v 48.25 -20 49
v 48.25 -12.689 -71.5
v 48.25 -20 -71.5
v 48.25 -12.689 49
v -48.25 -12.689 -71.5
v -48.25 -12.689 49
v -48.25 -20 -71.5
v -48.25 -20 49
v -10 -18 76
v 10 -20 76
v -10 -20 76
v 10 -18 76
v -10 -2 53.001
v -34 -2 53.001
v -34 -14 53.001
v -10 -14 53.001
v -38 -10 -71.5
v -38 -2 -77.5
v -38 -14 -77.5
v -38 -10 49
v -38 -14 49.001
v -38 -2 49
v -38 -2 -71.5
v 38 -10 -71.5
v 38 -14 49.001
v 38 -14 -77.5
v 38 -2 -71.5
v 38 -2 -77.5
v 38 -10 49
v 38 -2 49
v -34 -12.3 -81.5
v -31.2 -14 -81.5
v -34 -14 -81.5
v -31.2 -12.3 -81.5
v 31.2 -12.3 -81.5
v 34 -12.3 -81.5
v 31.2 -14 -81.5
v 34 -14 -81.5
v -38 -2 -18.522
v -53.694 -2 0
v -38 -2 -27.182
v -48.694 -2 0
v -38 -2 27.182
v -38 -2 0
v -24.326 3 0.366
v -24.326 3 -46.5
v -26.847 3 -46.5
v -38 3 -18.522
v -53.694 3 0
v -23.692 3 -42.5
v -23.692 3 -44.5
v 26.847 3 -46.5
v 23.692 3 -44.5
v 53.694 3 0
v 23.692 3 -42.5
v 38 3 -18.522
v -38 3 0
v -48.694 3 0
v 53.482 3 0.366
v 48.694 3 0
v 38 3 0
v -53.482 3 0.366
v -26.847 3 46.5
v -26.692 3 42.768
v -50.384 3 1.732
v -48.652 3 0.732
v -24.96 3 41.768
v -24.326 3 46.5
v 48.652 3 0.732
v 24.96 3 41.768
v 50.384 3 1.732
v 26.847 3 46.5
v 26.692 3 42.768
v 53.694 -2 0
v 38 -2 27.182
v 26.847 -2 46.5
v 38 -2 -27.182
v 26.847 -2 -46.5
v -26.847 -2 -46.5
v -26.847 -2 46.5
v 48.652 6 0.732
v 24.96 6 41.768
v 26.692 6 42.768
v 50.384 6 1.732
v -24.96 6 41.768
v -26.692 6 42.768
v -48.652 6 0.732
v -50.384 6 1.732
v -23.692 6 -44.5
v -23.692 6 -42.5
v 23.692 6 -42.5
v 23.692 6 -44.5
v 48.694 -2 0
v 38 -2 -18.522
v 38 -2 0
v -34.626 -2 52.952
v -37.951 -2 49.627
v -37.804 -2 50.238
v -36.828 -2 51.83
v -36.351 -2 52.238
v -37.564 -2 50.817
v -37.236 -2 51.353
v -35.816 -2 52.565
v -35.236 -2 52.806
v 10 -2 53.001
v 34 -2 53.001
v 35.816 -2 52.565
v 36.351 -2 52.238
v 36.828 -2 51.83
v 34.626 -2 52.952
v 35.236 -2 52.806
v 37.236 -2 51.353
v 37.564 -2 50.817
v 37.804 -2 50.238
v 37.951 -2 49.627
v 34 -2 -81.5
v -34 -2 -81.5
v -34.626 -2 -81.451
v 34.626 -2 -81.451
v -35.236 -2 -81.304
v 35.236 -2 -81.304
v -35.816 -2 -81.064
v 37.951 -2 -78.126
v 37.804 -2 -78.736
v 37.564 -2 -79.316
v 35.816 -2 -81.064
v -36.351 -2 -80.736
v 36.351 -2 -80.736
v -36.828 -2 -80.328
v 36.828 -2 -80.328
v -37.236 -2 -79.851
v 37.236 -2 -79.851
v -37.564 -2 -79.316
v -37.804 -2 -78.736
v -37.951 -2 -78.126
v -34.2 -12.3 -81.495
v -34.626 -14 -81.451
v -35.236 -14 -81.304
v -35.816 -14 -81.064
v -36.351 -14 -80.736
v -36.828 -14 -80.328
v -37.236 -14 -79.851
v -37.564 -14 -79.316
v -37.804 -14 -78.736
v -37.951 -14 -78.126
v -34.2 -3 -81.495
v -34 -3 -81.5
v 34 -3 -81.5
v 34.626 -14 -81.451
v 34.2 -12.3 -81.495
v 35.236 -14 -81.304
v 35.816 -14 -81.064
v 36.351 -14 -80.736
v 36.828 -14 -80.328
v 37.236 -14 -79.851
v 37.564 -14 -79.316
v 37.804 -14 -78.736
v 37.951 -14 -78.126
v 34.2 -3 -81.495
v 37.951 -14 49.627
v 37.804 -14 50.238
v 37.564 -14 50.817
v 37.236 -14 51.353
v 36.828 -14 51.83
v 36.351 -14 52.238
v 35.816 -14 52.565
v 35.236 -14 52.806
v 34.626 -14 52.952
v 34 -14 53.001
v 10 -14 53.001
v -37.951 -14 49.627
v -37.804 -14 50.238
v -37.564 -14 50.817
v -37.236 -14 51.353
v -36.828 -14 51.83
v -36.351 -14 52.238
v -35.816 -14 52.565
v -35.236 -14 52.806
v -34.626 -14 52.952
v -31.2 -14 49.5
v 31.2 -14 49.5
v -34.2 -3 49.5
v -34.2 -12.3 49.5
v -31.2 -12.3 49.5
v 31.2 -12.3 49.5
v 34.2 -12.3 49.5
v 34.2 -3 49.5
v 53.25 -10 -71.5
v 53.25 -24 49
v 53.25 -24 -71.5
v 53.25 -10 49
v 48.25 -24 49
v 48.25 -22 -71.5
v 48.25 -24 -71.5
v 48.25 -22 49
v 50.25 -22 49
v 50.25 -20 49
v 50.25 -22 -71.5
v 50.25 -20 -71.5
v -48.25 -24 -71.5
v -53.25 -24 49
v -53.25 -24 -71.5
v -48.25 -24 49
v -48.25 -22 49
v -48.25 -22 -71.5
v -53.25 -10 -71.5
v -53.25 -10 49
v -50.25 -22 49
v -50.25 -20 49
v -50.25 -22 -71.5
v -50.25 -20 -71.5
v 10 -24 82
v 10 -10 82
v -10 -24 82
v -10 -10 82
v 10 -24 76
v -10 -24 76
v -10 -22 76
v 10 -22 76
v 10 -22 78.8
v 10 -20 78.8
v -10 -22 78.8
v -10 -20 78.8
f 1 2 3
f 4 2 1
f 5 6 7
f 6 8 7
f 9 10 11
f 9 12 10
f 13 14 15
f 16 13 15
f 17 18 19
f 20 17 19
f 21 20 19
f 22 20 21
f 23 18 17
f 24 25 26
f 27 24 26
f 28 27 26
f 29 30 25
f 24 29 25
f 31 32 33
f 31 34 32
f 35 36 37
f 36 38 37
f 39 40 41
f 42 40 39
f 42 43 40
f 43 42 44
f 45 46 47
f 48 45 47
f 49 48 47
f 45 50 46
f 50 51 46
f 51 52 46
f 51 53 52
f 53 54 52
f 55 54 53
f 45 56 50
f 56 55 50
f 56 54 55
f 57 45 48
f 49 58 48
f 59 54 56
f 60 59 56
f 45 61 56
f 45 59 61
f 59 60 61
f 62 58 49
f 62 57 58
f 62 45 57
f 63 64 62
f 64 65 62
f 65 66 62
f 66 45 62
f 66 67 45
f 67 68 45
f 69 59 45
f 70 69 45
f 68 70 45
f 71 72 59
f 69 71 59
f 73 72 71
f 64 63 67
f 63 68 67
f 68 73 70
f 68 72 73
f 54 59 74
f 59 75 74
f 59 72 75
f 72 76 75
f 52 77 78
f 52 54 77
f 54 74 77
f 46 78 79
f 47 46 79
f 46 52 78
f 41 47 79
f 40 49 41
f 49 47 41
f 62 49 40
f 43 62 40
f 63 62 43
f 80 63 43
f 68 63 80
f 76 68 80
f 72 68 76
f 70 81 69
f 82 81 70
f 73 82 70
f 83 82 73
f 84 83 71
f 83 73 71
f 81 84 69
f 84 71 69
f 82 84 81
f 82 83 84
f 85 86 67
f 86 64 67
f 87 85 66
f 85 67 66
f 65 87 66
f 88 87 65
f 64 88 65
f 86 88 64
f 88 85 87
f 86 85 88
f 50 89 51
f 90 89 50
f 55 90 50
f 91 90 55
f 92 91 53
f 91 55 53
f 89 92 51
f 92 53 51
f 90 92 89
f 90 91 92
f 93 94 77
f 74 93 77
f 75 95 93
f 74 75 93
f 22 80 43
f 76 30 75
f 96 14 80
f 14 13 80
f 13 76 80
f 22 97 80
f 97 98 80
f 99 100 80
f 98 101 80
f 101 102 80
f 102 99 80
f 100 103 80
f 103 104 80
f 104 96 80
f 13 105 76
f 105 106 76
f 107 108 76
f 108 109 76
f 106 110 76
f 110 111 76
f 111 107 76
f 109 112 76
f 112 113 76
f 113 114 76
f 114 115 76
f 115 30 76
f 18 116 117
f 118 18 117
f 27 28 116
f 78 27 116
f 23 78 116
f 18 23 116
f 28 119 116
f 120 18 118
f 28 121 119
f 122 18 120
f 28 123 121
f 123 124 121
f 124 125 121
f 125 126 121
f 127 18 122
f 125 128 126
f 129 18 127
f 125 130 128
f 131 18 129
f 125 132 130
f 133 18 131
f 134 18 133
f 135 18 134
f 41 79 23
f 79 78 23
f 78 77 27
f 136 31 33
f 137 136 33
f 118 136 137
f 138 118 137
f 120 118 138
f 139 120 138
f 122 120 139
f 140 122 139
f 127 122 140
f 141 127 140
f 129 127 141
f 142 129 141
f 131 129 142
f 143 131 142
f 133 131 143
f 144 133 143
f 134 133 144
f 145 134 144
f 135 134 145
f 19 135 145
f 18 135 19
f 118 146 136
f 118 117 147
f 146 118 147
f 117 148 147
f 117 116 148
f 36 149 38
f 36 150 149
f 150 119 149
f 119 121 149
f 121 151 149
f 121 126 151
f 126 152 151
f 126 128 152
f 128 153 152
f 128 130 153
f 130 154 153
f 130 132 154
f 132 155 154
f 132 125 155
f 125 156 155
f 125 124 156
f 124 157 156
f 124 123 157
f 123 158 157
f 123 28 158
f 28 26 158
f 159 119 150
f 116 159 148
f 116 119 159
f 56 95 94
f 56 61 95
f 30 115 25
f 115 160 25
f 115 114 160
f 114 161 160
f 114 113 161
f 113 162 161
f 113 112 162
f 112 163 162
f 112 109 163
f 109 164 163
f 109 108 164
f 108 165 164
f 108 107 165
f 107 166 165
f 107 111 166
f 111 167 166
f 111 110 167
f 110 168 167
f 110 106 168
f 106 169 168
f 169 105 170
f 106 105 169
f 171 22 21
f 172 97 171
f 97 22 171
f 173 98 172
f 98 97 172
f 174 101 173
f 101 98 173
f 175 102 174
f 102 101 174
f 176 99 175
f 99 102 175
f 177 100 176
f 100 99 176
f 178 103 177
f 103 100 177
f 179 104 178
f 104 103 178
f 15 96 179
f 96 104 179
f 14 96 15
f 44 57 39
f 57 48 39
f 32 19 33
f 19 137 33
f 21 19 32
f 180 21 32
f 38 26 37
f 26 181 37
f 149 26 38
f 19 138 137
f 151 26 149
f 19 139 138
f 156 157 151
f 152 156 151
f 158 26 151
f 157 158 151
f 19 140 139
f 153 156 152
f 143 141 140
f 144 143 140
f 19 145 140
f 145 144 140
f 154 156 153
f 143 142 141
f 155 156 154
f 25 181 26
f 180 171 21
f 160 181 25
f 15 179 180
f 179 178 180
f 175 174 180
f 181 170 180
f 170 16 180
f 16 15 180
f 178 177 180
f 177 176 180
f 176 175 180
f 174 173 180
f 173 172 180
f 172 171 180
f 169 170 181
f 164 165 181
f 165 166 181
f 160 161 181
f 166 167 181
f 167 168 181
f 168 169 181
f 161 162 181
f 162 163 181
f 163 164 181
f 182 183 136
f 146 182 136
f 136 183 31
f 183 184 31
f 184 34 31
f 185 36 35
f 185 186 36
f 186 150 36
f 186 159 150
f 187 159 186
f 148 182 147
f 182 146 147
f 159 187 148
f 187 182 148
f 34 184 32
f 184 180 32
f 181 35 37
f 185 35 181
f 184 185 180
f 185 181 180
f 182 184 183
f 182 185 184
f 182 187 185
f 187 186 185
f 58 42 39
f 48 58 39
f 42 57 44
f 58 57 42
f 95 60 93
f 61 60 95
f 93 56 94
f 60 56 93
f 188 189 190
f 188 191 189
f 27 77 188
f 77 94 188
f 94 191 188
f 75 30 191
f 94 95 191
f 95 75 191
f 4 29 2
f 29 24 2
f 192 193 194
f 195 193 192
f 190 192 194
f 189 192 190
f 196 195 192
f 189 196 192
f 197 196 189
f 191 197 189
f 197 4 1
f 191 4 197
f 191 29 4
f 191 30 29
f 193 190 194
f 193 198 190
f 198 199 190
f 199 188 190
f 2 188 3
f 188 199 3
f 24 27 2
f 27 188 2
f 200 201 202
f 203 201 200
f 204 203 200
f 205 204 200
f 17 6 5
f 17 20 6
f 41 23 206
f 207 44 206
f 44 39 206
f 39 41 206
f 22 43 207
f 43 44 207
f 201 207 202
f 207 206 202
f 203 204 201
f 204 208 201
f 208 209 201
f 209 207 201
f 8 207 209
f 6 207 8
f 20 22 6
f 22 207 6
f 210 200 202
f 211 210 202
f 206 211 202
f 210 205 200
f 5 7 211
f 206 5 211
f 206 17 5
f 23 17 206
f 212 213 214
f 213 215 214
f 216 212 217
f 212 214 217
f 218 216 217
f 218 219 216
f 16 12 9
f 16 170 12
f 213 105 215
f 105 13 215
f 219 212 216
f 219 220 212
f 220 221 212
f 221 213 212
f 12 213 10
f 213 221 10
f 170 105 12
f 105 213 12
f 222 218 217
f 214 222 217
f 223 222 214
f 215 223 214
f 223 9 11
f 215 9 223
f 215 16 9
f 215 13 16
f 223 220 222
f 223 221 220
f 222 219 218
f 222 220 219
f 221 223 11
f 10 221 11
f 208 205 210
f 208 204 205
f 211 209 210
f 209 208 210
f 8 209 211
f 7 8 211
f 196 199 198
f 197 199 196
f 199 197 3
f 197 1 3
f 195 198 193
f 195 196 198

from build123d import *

# Parameters (mm, degrees)
RESSALTO_EXTRUS_O1_DEPTH  = 3
ESBO_O2_W                 = 47.384173958
ESBO_O2_H                 = 2
RESSALTO_EXTRUS_O2_DEPTH  = 3
RESSALTO_EXTRUS_O3_DEPTH  = 2
RESSALTO_EXTRUS_O5_DEPTH  = 12
CORTE_EXTRUS_O1_DEPTH     = 131
CORTE_EXTRUS_O3_DEPTH     = 10
RESSALTO_EXTRUS_O13_DEPTH = 120.5
RESSALTO_EXTRUS_O14_DEPTH = 10
ESBO_O20_W                = 100.5
ESBO_O20_H                = 2
CORTE_EXTRUS_O6_DEPTH     = 150.3


with BuildPart() as part:
    # Esboço1 → Ressalto-extrusão1 (new body)
    with BuildSketch(Plane(origin=(0, 0, 0), x_dir=(1, 0, 0), z_dir=(0, 1, 0))):
        Polygon((53.693575035, 0), (26.846787517, 46.5), (-26.846787517, 46.5), (-53.693575035, 0), (-26.846787517, -46.5), (26.846787517, -46.5), align=None)
    extrude(amount=RESSALTO_EXTRUS_O1_DEPTH)

    # Esboço2 → Ressalto-extrusão2 (add)
    with BuildSketch(Plane(origin=(0, 3, 0), x_dir=(1, 0, 0), z_dir=(0, 1, 0))):
        with Locations((0, 43.5)):
            Rectangle(ESBO_O2_W, ESBO_O2_H)
        Polygon((-50.384173958, -1.732050808), (-26.692086979, -42.767949192), (-24.960036171, -41.767949192), (-48.65212315, -0.732050808), align=None)
        Polygon((26.692086979, -42.767949192), (50.384173958, -1.732050808), (48.65212315, -0.732050808), (24.960036171, -41.767949192), align=None)
    extrude(amount=RESSALTO_EXTRUS_O2_DEPTH)

    # Esboço3 → Ressalto-extrusão3 (add)
    with BuildSketch(Plane.XZ):
        Polygon((26.846787517, 46.5), (-26.846787517, 46.5), (-53.693575035, 0), (-26.846787517, -46.5), (26.846787517, -46.5), (53.693575035, 0), align=None)
    extrude(amount=RESSALTO_EXTRUS_O3_DEPTH)

    # Esboço5 → Ressalto-extrusão5 (add)
    with BuildSketch(Plane.XZ.offset(2)):
        with BuildLine():
            Line((38, 49.00146682), (38, -77.5))
            ThreePointArc((38, -77.5), (36.828427125, -80.328427125), (34, -81.5))
            Line((34, -81.5), (-34, -81.5))
            ThreePointArc((-34, -81.5), (-36.828427125, -80.328427125), (-38, -77.5))
            Line((-38, -77.5), (-38, 49.00146682))
            ThreePointArc((-38, 49.00146682), (-36.828427125, 51.829893945), (-34, 53.00146682))
            Line((-34, 53.00146682), (34, 53.00146682))
            ThreePointArc((34, 53.00146682), (36.828427125, 51.829893945), (38, 49.00146682))
        make_face()
    extrude(amount=RESSALTO_EXTRUS_O5_DEPTH)

    # Esboço7 → Corte-extrusão1 (cut)
    with BuildSketch(Plane(origin=(0, 0, -81.5), x_dir=(-1, 0, 0), z_dir=(0, 0, -1))):
        Polygon((-34.2, -3), (34.2, -3), (34.2, -12.3), (31.2, -12.3), (31.2, -23.281359025), (-31.2, -26.250413902), (-31.2, -12.3), (-34.2, -12.3), align=None)
    extrude(amount=-CORTE_EXTRUS_O1_DEPTH, mode=Mode.SUBTRACT)

    # Esboço8 → Corte-extrusão3 (cut)
    with BuildSketch(Plane.XZ.offset(2)):
        Polygon((-48.693575035, 0), (-38, 0), (-38, -18.521815275), align=None)
        Polygon((38, 0), (48.693575035, 0), (38, -18.521815275), align=None)
    extrude(amount=-CORTE_EXTRUS_O3_DEPTH, mode=Mode.SUBTRACT)

    # Esboço17 → Ressalto-extrusão13 (add)
    with BuildSketch(Plane(origin=(0, 0, -71.5), x_dir=(-1, 0, 0), z_dir=(0, 0, -1))):
        Polygon((-53.25, -20), (-53.25, -18), (-53.25, -10), (-38, -2), (-38, -6), (-38, -10), (-48.25, -12.68852459), (-48.25, -18), (-48.25, -20), (-48.25, -22), (-48.25, -24), (-53.25, -24), (-53.25, -22), align=None)
        Polygon((53.25, -20), (53.25, -18), (53.25, -10), (38, -2), (38, -6), (38, -10), (48.25, -12.68852459), (48.25, -18), (48.25, -20), (48.25, -22), (48.25, -24), (53.25, -24), align=None)
    extrude(amount=-RESSALTO_EXTRUS_O13_DEPTH)

    # Esboço19 → Ressalto-extrusão14 (add, symmetric)
    with BuildSketch(Plane(origin=(0, 0, 0), x_dir=(0, 0, -1), z_dir=(1, 0, 0))):
        Polygon((-53.00146682, -14), (-53.00146682, -2), (-82, -10), (-82, -24), (-76, -24), (-76, -18), align=None)
    extrude(amount=RESSALTO_EXTRUS_O14_DEPTH, both=True)

    # Esboço20 → Corte-extrusão6 (cut)
    with BuildSketch(Plane(origin=(0, 0, -71.5), x_dir=(-1, 0, 0), z_dir=(0, 0, -1))):
        with Locations((0, -21)):
            Rectangle(ESBO_O20_W, ESBO_O20_H)
    extrude(amount=-CORTE_EXTRUS_O6_DEPTH, mode=Mode.SUBTRACT)


solid = part.part
